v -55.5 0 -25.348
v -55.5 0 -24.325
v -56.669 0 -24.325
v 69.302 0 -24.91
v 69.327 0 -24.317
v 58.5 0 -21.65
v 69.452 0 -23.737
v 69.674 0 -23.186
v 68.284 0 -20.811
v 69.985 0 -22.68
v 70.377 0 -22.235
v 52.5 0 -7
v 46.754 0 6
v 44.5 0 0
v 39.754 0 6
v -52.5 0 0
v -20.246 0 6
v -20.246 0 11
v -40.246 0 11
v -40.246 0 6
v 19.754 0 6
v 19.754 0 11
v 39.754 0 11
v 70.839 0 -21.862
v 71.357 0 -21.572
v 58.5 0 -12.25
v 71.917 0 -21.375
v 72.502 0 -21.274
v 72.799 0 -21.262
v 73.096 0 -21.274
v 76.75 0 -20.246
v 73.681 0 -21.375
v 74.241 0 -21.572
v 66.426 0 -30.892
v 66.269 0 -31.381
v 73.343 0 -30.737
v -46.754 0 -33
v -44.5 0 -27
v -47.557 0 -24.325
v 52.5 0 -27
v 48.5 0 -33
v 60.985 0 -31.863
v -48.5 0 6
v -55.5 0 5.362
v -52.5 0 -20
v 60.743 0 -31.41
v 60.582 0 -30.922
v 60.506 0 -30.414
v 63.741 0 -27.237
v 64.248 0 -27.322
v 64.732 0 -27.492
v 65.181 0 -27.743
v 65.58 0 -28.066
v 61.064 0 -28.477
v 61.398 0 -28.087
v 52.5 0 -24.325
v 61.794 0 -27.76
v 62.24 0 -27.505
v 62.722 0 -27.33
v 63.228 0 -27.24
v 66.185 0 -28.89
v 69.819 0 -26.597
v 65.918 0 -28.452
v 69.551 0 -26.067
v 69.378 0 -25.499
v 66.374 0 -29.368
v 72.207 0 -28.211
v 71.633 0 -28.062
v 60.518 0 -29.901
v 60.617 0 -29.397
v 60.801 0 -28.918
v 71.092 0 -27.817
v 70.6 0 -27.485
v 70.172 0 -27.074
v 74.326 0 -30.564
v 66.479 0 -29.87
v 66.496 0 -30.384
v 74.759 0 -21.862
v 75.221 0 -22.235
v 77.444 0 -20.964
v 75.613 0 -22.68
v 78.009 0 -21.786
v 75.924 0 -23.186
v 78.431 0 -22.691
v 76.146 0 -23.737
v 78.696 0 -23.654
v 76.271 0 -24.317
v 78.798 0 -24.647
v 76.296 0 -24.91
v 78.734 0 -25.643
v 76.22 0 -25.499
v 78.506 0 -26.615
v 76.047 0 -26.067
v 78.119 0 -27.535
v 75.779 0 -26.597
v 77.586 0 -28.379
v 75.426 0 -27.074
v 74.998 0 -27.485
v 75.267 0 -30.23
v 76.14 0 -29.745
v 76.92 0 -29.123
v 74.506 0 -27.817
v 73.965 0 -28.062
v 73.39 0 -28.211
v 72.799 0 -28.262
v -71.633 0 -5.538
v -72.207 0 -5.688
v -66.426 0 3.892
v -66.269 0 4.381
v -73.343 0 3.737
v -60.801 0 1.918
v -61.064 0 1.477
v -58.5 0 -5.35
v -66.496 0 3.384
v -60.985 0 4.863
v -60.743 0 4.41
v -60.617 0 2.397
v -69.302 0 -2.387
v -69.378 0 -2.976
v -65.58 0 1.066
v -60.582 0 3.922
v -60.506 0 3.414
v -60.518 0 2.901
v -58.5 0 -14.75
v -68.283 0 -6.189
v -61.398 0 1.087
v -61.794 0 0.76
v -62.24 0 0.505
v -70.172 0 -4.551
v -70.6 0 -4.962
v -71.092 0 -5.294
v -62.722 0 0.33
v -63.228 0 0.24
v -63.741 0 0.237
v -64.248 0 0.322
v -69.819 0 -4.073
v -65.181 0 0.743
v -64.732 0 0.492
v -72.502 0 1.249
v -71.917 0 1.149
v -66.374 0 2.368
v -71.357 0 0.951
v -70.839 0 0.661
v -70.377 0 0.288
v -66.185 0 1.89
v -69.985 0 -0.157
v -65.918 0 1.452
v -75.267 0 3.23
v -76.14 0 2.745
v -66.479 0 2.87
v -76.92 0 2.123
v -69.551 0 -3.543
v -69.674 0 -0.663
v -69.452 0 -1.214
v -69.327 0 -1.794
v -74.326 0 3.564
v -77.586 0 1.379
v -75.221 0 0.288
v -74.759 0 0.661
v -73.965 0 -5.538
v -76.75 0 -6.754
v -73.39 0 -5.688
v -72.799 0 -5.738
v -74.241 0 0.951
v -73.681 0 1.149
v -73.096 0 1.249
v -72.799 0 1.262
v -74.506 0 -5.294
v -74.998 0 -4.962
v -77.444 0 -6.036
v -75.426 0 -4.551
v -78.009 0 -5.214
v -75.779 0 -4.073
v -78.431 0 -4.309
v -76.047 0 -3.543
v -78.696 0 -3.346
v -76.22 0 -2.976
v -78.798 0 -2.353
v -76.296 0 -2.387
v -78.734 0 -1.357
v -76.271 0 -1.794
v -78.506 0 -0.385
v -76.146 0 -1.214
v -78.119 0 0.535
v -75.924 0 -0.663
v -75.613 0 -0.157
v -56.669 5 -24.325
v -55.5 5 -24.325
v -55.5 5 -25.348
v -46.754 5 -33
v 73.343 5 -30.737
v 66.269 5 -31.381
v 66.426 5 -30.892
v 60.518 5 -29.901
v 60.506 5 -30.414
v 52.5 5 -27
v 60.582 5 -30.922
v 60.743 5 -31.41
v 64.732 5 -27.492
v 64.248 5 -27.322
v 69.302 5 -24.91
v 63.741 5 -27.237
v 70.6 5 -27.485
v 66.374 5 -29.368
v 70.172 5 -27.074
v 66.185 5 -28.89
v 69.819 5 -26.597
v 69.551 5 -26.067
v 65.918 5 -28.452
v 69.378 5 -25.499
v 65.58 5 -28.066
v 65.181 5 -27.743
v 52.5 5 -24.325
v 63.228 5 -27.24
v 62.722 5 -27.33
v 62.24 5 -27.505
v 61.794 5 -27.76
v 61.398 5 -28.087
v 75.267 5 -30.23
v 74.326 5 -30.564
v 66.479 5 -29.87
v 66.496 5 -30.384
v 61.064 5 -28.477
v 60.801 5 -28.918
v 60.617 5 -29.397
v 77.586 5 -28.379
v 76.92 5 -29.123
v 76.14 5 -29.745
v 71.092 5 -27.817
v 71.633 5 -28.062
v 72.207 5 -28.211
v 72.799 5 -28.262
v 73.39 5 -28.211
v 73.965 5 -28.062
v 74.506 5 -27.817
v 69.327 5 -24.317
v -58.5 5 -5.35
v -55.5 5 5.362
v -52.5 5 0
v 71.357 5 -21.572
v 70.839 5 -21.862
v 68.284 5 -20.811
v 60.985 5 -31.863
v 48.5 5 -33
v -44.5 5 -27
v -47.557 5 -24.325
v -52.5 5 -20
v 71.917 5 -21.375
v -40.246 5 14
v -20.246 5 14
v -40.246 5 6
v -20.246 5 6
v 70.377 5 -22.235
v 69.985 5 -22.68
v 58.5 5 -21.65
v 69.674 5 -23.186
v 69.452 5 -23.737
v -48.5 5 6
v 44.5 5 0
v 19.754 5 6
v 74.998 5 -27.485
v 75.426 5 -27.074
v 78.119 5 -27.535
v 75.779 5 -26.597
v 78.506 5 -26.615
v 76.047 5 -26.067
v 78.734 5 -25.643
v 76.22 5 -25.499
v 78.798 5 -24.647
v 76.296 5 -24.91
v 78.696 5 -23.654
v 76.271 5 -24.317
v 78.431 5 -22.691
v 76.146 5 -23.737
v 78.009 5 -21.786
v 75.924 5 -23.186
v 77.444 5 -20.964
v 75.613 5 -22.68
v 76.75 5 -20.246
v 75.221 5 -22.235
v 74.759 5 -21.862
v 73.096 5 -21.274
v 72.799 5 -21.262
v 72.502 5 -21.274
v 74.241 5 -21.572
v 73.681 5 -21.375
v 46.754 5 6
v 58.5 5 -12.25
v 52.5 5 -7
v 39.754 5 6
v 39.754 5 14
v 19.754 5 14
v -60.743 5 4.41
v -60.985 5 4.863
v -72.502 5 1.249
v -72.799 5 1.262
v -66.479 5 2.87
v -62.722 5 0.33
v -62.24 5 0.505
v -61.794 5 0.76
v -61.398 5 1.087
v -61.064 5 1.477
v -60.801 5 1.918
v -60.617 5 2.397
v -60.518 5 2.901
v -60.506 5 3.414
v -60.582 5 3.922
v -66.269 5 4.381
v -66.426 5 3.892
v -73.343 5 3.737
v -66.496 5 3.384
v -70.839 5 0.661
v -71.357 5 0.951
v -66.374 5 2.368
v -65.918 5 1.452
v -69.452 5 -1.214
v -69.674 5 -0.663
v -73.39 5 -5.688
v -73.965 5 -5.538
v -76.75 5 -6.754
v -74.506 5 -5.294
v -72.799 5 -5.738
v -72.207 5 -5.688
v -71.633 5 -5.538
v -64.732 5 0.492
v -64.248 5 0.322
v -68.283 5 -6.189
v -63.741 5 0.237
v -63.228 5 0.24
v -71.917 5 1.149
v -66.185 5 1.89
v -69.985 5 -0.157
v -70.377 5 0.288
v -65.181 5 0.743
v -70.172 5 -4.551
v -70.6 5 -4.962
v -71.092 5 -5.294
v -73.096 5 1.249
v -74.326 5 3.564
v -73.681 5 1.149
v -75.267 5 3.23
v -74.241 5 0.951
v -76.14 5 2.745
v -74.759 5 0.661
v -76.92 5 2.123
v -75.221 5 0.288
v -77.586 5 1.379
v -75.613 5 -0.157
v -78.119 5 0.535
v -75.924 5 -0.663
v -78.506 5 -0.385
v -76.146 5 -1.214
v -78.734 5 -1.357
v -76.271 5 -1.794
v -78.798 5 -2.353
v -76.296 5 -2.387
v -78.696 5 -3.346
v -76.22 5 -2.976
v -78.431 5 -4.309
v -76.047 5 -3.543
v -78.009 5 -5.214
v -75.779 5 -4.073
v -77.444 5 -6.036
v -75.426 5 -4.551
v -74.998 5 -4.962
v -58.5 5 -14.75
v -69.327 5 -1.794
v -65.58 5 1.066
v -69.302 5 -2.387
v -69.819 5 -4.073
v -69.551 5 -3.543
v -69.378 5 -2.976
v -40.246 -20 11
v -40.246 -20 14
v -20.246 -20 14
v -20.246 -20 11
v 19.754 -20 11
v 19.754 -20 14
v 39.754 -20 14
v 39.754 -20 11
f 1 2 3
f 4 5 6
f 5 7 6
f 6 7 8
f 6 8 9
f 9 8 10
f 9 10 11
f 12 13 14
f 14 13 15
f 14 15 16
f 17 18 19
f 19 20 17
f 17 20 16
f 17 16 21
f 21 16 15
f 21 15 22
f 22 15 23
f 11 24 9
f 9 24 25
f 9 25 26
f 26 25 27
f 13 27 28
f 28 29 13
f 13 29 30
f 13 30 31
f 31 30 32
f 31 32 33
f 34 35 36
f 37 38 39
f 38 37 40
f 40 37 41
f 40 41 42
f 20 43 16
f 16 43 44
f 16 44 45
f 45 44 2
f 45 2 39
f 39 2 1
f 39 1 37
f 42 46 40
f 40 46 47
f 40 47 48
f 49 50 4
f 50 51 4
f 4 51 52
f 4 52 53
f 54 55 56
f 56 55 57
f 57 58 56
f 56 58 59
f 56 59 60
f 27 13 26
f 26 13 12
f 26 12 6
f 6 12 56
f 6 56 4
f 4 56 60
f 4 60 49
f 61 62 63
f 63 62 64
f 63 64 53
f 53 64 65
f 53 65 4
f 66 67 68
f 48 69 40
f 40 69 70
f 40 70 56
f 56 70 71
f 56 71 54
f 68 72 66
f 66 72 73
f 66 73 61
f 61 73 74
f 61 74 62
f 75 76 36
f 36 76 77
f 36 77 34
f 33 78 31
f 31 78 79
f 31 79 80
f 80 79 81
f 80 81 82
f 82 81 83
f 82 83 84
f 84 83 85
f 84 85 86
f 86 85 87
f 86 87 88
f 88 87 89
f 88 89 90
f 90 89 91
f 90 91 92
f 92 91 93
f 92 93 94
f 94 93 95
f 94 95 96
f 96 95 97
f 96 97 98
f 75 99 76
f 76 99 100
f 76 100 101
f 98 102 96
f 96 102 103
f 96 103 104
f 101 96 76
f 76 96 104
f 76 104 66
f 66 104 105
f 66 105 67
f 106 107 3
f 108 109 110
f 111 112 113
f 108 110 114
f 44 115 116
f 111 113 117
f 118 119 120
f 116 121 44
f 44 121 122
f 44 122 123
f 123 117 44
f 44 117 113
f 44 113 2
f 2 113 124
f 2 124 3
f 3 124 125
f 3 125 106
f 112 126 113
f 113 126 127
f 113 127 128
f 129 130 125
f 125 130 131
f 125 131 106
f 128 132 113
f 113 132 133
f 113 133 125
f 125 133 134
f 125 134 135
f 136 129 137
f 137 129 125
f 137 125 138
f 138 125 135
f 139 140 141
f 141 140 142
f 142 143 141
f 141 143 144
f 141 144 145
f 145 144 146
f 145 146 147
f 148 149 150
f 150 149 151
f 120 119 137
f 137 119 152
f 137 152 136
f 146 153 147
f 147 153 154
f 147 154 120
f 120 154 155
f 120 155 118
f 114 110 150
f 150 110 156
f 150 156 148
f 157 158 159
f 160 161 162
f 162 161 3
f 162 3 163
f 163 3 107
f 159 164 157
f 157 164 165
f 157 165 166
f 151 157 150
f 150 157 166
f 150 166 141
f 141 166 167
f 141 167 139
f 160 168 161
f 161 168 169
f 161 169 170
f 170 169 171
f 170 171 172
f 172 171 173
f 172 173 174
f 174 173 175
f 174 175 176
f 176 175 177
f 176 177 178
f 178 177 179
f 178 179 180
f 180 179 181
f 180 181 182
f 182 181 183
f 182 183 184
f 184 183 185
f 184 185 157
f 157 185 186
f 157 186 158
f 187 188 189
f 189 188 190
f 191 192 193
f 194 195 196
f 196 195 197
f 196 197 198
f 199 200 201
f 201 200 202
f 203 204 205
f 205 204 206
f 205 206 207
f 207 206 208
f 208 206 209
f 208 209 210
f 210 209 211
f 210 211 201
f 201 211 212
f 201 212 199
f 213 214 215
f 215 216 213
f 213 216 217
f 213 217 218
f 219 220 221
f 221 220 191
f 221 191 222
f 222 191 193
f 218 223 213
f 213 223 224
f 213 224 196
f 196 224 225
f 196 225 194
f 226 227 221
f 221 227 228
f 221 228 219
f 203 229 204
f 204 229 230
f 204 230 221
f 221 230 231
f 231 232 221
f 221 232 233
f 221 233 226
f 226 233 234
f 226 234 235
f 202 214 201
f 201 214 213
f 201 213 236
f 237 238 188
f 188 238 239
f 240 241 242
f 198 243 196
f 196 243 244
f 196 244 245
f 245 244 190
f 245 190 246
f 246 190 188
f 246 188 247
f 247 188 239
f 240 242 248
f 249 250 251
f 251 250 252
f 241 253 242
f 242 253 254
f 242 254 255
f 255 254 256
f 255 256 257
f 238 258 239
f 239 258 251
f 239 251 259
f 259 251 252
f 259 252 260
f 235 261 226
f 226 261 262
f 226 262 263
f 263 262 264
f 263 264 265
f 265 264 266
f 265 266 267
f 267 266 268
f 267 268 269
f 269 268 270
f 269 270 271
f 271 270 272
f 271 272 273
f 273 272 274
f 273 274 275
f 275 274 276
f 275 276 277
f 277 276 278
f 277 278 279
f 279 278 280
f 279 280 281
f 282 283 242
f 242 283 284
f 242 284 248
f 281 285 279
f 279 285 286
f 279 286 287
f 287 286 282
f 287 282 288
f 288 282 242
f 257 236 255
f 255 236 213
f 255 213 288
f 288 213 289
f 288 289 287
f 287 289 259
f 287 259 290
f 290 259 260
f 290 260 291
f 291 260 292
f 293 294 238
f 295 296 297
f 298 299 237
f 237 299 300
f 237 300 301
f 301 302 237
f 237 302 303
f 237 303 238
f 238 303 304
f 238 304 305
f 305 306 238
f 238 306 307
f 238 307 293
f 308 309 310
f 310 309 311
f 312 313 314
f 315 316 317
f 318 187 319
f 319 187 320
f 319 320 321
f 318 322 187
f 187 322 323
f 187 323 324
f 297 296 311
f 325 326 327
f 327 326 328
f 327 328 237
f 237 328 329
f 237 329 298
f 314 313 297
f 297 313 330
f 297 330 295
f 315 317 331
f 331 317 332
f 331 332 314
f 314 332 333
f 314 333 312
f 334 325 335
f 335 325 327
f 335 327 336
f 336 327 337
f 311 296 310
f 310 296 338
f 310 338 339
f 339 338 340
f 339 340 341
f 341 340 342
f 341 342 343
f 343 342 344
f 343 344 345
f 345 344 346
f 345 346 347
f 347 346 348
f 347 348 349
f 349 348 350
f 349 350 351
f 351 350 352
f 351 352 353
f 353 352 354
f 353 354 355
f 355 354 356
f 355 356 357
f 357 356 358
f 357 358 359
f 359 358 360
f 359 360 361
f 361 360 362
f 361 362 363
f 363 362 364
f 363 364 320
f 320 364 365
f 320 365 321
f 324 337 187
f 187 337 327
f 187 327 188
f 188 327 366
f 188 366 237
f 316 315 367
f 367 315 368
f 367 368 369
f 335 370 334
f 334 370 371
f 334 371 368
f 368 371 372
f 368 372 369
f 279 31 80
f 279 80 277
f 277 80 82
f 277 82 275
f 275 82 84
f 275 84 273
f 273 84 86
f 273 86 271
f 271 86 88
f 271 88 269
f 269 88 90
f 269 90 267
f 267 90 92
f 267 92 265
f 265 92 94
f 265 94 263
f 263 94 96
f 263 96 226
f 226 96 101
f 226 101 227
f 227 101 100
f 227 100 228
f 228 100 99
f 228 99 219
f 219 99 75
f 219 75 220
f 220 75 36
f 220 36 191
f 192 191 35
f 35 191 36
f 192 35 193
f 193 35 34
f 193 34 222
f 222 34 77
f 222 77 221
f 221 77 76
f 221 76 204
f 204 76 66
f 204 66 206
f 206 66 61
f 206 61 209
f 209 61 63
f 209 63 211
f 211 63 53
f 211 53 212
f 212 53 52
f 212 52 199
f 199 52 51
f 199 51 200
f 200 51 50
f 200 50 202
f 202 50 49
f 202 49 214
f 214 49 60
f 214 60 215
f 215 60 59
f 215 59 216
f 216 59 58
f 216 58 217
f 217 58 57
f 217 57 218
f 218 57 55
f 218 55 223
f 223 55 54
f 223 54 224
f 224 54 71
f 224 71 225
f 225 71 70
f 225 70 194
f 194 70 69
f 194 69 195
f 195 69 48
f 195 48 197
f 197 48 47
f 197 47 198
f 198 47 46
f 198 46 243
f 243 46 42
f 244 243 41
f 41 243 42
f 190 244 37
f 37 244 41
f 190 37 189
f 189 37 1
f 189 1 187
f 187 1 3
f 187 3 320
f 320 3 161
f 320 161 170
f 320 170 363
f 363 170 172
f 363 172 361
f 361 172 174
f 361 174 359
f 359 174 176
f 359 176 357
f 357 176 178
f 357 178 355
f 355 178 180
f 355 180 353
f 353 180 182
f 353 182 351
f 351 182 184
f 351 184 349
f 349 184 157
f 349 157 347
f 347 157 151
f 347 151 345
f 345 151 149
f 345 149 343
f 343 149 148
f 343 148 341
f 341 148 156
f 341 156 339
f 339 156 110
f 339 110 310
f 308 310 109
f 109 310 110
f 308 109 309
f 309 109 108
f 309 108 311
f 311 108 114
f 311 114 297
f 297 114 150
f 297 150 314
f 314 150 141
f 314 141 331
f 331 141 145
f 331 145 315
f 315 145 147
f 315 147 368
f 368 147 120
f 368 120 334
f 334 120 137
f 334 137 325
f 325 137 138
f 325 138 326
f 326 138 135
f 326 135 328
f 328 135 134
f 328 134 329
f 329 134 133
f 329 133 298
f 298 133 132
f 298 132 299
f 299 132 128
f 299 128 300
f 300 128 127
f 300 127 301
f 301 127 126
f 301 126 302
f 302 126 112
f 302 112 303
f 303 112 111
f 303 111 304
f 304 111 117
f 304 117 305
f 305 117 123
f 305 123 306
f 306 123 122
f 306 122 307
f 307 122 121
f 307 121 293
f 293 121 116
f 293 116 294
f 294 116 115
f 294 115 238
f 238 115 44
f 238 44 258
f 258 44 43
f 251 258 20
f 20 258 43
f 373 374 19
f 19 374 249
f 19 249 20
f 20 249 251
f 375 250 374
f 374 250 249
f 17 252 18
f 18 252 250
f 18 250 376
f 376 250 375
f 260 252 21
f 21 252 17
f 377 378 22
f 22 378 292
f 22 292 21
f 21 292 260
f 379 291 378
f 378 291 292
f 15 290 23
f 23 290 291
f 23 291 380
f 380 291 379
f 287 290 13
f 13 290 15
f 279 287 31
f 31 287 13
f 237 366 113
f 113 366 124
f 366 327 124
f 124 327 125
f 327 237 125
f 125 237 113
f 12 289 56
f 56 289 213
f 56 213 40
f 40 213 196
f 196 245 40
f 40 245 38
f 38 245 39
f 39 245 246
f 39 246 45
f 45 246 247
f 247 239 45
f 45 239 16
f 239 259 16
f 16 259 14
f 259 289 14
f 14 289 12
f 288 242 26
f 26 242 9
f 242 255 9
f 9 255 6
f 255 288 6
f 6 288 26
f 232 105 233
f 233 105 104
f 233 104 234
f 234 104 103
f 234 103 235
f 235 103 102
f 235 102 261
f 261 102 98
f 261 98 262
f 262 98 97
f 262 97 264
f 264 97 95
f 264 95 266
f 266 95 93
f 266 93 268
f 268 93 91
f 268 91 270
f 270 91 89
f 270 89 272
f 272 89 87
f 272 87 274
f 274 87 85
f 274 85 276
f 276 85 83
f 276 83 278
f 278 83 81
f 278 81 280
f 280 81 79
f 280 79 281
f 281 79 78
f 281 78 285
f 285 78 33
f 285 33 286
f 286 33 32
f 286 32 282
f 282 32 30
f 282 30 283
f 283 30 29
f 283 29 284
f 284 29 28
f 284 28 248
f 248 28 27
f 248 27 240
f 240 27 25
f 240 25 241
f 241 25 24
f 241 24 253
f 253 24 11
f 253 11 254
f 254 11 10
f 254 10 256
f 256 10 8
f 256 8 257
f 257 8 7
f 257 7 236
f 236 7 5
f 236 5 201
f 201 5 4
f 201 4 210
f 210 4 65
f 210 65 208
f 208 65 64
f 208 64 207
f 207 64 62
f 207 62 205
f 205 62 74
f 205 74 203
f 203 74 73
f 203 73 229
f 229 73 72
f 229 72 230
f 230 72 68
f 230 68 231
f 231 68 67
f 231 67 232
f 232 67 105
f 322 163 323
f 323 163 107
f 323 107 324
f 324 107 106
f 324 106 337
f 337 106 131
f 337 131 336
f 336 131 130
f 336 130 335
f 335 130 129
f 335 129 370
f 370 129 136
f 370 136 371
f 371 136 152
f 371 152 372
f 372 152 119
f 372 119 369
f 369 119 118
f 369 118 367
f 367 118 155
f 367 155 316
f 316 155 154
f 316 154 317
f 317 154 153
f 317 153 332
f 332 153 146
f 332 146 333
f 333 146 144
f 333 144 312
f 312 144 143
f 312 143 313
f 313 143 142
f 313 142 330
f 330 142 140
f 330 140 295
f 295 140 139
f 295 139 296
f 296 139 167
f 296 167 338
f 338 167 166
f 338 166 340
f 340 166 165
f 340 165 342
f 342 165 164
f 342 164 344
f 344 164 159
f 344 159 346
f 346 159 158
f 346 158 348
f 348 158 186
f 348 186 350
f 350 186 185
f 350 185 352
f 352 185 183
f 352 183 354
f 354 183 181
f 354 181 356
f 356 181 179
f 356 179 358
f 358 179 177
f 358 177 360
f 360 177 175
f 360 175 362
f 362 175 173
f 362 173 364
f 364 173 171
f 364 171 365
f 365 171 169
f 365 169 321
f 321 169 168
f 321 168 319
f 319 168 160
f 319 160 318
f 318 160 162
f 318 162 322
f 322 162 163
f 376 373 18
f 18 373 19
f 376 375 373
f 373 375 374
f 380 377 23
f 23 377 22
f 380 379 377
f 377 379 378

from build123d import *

# Parameters (mm, degrees)
SKETCH1_R           = 3.5
BOSS_EXTRUDE1_DEPTH = 5
SKETCH2_W           = 20
SKETCH2_H           = 3
BOSS_EXTRUDE2_DEPTH = 20


with BuildPart() as part:
    # Sketch1 → Boss-Extrude1 (new body)
    with BuildSketch(Plane(origin=(0, 0, 0), x_dir=(1, 0, 0), z_dir=(0, 1, 0))):
        with BuildLine():
            Line((-46.754410697, 33), (48.5, 33))
            Line((48.5, 33), (60.984651798, 31.862682764))
            ThreePointArc((60.984651798, 31.862682764), (63.227835275, 27.240115524), (66.269368613, 31.381259683))
            Line((66.269368613, 31.381259683), (73.34328665, 30.736845322))
            ThreePointArc((73.34328665, 30.736845322), (78.505606793, 26.614733634), (76.749984847, 20.246127381))
            Line((76.749984847, 20.246127381), (46.754410697, -6))
            Line((46.754410697, -6), (39.754410697, -6))
            Line((39.754410697, -6), (39.754410697, -14))
            Line((39.754410697, -14), (19.754410697, -14))
            Line((19.754410697, -14), (19.754410697, -6))
            Line((19.754410697, -6), (-20.245589303, -6))
            Line((-20.245589303, -6), (-20.245589303, -14))
            Line((-20.245589303, -14), (-40.245589303, -14))
            Line((-40.245589303, -14), (-40.245589303, -6))
            Line((-40.245589303, -6), (-48.5, -6))
            Line((-48.5, -6), (-60.984651798, -4.862682764))
            ThreePointArc((-60.984651798, -4.862682764), (-63.227835275, -0.240115524), (-66.269368613, -4.381259683))
            Line((-66.269368613, -4.381259683), (-73.34328665, -3.736845322))
            ThreePointArc((-73.34328665, -3.736845322), (-78.505606793, 0.385266366), (-76.749984847, 6.753872619))
            Line((-76.749984847, 6.753872619), (-46.754410697, 33))
        make_face()
        with Locations((72.798957199, 24.76158755)):
            Circle(SKETCH1_R, mode=Mode.SUBTRACT)
        with Locations((-72.798957199, 2.23841245)):
            Circle(SKETCH1_R, mode=Mode.SUBTRACT)
        Polygon((-44.5, 27), (52.5, 27), (52.5, 7), (44.5, 0), (-52.5, 0), (-52.5, 20), align=None, mode=Mode.SUBTRACT)
        Polygon((58.5, 21.65), (58.5, 12.25), (68.283497031, 20.810559902), align=None, mode=Mode.SUBTRACT)
        Polygon((-58.5, 14.75), (-68.283497031, 6.189440098), (-58.5, 5.35), align=None, mode=Mode.SUBTRACT)
    extrude(amount=BOSS_EXTRUDE1_DEPTH)

    # Sketch2 → Boss-Extrude2 (add)
    with BuildSketch(Plane.XZ):
        with Locations((-30.245589303, 12.5)):
            Rectangle(SKETCH2_W, SKETCH2_H)
        with Locations((29.754410697, 12.5)):
            Rectangle(SKETCH2_W, SKETCH2_H)
    extrude(amount=BOSS_EXTRUDE2_DEPTH)


solid = part.part
